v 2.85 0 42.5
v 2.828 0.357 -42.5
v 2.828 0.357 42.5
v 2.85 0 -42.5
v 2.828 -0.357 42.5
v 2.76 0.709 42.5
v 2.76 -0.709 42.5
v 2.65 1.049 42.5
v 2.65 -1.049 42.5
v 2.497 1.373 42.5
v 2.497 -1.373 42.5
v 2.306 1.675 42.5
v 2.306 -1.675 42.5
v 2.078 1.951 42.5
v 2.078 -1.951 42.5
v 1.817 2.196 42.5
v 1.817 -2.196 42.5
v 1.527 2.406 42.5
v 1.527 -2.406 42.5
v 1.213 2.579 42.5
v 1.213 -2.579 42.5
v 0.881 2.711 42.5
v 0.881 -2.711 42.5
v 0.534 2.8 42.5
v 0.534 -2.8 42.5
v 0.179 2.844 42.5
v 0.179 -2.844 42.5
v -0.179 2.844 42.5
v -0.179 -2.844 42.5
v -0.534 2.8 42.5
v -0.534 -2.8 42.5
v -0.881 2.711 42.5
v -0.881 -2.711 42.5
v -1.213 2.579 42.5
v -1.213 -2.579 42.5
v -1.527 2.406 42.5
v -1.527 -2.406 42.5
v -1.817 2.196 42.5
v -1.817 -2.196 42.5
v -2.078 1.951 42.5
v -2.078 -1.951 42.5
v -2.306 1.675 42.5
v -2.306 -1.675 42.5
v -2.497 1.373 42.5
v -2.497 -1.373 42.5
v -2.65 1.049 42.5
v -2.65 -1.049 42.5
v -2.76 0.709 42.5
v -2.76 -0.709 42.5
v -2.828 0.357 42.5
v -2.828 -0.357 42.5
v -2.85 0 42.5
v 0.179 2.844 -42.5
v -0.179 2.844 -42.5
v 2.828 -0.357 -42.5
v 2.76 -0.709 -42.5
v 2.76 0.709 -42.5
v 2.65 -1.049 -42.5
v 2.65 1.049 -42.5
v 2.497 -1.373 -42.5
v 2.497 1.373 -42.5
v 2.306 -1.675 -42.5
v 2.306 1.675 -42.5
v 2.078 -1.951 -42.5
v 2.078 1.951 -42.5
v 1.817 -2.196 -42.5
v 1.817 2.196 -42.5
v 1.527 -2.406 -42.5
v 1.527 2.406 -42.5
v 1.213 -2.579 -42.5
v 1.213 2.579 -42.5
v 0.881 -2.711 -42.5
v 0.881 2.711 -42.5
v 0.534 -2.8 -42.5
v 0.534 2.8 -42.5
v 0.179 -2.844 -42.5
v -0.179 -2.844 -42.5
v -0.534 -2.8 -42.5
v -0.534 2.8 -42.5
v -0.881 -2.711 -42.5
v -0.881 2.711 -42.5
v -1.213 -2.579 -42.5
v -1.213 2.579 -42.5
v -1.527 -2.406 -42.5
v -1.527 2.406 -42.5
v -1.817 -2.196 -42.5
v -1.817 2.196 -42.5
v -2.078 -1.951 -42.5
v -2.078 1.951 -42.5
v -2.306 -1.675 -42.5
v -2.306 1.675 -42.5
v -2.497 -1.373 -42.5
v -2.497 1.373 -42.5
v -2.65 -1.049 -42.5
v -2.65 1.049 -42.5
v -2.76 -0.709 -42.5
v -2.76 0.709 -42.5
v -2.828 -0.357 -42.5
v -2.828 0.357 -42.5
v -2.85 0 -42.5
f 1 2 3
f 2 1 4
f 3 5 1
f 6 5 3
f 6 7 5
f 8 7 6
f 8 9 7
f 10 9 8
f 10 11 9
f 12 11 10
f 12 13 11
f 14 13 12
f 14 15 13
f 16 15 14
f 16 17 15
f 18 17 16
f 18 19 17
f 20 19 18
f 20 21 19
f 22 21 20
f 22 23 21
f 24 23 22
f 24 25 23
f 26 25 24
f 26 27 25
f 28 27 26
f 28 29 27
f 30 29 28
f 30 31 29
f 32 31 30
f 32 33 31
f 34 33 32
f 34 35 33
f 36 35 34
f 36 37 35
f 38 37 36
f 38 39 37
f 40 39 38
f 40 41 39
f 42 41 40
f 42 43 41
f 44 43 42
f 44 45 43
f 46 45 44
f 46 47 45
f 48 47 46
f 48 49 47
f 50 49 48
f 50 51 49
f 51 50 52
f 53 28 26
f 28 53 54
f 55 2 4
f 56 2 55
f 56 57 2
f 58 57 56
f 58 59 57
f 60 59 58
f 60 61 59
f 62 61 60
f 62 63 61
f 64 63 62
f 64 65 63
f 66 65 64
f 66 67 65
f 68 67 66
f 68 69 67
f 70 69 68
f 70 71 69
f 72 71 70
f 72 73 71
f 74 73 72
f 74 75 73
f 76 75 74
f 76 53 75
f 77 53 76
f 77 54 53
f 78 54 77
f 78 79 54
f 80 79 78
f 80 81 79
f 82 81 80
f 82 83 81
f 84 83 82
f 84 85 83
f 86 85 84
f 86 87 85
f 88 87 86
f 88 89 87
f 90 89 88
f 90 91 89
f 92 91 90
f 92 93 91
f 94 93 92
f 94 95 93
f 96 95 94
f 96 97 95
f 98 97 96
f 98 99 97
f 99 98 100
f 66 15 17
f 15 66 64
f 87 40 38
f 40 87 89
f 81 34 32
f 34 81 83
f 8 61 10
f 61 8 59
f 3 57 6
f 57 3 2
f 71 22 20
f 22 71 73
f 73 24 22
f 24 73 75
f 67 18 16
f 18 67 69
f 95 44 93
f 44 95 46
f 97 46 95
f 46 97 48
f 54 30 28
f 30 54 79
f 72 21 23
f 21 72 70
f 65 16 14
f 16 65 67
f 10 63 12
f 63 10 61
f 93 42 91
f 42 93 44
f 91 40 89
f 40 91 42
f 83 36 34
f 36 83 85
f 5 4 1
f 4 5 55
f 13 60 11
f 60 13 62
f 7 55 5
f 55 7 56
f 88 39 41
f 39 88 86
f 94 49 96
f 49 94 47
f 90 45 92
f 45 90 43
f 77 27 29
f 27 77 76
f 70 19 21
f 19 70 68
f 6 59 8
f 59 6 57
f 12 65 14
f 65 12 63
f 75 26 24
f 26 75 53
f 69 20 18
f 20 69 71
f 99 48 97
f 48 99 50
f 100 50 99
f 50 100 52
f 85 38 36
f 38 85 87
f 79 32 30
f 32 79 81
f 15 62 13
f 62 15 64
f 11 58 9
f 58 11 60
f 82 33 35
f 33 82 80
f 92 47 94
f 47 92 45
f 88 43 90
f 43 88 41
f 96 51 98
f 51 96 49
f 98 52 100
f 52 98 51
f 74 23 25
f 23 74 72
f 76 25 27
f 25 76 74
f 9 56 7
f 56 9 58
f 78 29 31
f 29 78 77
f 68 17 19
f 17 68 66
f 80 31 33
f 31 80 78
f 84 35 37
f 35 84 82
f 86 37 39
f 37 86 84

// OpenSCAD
$fn = 50;


difference() {
	union() {
		translate(v = [0, 0, -42.5000000000]) {
			cylinder(h = 85, r = 2.8500000000);
		}
	}
	union() {
		translate(v = [0, 0, -100.0000000000]) {
			cylinder(h = 200, r = 0);
		}
	}
}
